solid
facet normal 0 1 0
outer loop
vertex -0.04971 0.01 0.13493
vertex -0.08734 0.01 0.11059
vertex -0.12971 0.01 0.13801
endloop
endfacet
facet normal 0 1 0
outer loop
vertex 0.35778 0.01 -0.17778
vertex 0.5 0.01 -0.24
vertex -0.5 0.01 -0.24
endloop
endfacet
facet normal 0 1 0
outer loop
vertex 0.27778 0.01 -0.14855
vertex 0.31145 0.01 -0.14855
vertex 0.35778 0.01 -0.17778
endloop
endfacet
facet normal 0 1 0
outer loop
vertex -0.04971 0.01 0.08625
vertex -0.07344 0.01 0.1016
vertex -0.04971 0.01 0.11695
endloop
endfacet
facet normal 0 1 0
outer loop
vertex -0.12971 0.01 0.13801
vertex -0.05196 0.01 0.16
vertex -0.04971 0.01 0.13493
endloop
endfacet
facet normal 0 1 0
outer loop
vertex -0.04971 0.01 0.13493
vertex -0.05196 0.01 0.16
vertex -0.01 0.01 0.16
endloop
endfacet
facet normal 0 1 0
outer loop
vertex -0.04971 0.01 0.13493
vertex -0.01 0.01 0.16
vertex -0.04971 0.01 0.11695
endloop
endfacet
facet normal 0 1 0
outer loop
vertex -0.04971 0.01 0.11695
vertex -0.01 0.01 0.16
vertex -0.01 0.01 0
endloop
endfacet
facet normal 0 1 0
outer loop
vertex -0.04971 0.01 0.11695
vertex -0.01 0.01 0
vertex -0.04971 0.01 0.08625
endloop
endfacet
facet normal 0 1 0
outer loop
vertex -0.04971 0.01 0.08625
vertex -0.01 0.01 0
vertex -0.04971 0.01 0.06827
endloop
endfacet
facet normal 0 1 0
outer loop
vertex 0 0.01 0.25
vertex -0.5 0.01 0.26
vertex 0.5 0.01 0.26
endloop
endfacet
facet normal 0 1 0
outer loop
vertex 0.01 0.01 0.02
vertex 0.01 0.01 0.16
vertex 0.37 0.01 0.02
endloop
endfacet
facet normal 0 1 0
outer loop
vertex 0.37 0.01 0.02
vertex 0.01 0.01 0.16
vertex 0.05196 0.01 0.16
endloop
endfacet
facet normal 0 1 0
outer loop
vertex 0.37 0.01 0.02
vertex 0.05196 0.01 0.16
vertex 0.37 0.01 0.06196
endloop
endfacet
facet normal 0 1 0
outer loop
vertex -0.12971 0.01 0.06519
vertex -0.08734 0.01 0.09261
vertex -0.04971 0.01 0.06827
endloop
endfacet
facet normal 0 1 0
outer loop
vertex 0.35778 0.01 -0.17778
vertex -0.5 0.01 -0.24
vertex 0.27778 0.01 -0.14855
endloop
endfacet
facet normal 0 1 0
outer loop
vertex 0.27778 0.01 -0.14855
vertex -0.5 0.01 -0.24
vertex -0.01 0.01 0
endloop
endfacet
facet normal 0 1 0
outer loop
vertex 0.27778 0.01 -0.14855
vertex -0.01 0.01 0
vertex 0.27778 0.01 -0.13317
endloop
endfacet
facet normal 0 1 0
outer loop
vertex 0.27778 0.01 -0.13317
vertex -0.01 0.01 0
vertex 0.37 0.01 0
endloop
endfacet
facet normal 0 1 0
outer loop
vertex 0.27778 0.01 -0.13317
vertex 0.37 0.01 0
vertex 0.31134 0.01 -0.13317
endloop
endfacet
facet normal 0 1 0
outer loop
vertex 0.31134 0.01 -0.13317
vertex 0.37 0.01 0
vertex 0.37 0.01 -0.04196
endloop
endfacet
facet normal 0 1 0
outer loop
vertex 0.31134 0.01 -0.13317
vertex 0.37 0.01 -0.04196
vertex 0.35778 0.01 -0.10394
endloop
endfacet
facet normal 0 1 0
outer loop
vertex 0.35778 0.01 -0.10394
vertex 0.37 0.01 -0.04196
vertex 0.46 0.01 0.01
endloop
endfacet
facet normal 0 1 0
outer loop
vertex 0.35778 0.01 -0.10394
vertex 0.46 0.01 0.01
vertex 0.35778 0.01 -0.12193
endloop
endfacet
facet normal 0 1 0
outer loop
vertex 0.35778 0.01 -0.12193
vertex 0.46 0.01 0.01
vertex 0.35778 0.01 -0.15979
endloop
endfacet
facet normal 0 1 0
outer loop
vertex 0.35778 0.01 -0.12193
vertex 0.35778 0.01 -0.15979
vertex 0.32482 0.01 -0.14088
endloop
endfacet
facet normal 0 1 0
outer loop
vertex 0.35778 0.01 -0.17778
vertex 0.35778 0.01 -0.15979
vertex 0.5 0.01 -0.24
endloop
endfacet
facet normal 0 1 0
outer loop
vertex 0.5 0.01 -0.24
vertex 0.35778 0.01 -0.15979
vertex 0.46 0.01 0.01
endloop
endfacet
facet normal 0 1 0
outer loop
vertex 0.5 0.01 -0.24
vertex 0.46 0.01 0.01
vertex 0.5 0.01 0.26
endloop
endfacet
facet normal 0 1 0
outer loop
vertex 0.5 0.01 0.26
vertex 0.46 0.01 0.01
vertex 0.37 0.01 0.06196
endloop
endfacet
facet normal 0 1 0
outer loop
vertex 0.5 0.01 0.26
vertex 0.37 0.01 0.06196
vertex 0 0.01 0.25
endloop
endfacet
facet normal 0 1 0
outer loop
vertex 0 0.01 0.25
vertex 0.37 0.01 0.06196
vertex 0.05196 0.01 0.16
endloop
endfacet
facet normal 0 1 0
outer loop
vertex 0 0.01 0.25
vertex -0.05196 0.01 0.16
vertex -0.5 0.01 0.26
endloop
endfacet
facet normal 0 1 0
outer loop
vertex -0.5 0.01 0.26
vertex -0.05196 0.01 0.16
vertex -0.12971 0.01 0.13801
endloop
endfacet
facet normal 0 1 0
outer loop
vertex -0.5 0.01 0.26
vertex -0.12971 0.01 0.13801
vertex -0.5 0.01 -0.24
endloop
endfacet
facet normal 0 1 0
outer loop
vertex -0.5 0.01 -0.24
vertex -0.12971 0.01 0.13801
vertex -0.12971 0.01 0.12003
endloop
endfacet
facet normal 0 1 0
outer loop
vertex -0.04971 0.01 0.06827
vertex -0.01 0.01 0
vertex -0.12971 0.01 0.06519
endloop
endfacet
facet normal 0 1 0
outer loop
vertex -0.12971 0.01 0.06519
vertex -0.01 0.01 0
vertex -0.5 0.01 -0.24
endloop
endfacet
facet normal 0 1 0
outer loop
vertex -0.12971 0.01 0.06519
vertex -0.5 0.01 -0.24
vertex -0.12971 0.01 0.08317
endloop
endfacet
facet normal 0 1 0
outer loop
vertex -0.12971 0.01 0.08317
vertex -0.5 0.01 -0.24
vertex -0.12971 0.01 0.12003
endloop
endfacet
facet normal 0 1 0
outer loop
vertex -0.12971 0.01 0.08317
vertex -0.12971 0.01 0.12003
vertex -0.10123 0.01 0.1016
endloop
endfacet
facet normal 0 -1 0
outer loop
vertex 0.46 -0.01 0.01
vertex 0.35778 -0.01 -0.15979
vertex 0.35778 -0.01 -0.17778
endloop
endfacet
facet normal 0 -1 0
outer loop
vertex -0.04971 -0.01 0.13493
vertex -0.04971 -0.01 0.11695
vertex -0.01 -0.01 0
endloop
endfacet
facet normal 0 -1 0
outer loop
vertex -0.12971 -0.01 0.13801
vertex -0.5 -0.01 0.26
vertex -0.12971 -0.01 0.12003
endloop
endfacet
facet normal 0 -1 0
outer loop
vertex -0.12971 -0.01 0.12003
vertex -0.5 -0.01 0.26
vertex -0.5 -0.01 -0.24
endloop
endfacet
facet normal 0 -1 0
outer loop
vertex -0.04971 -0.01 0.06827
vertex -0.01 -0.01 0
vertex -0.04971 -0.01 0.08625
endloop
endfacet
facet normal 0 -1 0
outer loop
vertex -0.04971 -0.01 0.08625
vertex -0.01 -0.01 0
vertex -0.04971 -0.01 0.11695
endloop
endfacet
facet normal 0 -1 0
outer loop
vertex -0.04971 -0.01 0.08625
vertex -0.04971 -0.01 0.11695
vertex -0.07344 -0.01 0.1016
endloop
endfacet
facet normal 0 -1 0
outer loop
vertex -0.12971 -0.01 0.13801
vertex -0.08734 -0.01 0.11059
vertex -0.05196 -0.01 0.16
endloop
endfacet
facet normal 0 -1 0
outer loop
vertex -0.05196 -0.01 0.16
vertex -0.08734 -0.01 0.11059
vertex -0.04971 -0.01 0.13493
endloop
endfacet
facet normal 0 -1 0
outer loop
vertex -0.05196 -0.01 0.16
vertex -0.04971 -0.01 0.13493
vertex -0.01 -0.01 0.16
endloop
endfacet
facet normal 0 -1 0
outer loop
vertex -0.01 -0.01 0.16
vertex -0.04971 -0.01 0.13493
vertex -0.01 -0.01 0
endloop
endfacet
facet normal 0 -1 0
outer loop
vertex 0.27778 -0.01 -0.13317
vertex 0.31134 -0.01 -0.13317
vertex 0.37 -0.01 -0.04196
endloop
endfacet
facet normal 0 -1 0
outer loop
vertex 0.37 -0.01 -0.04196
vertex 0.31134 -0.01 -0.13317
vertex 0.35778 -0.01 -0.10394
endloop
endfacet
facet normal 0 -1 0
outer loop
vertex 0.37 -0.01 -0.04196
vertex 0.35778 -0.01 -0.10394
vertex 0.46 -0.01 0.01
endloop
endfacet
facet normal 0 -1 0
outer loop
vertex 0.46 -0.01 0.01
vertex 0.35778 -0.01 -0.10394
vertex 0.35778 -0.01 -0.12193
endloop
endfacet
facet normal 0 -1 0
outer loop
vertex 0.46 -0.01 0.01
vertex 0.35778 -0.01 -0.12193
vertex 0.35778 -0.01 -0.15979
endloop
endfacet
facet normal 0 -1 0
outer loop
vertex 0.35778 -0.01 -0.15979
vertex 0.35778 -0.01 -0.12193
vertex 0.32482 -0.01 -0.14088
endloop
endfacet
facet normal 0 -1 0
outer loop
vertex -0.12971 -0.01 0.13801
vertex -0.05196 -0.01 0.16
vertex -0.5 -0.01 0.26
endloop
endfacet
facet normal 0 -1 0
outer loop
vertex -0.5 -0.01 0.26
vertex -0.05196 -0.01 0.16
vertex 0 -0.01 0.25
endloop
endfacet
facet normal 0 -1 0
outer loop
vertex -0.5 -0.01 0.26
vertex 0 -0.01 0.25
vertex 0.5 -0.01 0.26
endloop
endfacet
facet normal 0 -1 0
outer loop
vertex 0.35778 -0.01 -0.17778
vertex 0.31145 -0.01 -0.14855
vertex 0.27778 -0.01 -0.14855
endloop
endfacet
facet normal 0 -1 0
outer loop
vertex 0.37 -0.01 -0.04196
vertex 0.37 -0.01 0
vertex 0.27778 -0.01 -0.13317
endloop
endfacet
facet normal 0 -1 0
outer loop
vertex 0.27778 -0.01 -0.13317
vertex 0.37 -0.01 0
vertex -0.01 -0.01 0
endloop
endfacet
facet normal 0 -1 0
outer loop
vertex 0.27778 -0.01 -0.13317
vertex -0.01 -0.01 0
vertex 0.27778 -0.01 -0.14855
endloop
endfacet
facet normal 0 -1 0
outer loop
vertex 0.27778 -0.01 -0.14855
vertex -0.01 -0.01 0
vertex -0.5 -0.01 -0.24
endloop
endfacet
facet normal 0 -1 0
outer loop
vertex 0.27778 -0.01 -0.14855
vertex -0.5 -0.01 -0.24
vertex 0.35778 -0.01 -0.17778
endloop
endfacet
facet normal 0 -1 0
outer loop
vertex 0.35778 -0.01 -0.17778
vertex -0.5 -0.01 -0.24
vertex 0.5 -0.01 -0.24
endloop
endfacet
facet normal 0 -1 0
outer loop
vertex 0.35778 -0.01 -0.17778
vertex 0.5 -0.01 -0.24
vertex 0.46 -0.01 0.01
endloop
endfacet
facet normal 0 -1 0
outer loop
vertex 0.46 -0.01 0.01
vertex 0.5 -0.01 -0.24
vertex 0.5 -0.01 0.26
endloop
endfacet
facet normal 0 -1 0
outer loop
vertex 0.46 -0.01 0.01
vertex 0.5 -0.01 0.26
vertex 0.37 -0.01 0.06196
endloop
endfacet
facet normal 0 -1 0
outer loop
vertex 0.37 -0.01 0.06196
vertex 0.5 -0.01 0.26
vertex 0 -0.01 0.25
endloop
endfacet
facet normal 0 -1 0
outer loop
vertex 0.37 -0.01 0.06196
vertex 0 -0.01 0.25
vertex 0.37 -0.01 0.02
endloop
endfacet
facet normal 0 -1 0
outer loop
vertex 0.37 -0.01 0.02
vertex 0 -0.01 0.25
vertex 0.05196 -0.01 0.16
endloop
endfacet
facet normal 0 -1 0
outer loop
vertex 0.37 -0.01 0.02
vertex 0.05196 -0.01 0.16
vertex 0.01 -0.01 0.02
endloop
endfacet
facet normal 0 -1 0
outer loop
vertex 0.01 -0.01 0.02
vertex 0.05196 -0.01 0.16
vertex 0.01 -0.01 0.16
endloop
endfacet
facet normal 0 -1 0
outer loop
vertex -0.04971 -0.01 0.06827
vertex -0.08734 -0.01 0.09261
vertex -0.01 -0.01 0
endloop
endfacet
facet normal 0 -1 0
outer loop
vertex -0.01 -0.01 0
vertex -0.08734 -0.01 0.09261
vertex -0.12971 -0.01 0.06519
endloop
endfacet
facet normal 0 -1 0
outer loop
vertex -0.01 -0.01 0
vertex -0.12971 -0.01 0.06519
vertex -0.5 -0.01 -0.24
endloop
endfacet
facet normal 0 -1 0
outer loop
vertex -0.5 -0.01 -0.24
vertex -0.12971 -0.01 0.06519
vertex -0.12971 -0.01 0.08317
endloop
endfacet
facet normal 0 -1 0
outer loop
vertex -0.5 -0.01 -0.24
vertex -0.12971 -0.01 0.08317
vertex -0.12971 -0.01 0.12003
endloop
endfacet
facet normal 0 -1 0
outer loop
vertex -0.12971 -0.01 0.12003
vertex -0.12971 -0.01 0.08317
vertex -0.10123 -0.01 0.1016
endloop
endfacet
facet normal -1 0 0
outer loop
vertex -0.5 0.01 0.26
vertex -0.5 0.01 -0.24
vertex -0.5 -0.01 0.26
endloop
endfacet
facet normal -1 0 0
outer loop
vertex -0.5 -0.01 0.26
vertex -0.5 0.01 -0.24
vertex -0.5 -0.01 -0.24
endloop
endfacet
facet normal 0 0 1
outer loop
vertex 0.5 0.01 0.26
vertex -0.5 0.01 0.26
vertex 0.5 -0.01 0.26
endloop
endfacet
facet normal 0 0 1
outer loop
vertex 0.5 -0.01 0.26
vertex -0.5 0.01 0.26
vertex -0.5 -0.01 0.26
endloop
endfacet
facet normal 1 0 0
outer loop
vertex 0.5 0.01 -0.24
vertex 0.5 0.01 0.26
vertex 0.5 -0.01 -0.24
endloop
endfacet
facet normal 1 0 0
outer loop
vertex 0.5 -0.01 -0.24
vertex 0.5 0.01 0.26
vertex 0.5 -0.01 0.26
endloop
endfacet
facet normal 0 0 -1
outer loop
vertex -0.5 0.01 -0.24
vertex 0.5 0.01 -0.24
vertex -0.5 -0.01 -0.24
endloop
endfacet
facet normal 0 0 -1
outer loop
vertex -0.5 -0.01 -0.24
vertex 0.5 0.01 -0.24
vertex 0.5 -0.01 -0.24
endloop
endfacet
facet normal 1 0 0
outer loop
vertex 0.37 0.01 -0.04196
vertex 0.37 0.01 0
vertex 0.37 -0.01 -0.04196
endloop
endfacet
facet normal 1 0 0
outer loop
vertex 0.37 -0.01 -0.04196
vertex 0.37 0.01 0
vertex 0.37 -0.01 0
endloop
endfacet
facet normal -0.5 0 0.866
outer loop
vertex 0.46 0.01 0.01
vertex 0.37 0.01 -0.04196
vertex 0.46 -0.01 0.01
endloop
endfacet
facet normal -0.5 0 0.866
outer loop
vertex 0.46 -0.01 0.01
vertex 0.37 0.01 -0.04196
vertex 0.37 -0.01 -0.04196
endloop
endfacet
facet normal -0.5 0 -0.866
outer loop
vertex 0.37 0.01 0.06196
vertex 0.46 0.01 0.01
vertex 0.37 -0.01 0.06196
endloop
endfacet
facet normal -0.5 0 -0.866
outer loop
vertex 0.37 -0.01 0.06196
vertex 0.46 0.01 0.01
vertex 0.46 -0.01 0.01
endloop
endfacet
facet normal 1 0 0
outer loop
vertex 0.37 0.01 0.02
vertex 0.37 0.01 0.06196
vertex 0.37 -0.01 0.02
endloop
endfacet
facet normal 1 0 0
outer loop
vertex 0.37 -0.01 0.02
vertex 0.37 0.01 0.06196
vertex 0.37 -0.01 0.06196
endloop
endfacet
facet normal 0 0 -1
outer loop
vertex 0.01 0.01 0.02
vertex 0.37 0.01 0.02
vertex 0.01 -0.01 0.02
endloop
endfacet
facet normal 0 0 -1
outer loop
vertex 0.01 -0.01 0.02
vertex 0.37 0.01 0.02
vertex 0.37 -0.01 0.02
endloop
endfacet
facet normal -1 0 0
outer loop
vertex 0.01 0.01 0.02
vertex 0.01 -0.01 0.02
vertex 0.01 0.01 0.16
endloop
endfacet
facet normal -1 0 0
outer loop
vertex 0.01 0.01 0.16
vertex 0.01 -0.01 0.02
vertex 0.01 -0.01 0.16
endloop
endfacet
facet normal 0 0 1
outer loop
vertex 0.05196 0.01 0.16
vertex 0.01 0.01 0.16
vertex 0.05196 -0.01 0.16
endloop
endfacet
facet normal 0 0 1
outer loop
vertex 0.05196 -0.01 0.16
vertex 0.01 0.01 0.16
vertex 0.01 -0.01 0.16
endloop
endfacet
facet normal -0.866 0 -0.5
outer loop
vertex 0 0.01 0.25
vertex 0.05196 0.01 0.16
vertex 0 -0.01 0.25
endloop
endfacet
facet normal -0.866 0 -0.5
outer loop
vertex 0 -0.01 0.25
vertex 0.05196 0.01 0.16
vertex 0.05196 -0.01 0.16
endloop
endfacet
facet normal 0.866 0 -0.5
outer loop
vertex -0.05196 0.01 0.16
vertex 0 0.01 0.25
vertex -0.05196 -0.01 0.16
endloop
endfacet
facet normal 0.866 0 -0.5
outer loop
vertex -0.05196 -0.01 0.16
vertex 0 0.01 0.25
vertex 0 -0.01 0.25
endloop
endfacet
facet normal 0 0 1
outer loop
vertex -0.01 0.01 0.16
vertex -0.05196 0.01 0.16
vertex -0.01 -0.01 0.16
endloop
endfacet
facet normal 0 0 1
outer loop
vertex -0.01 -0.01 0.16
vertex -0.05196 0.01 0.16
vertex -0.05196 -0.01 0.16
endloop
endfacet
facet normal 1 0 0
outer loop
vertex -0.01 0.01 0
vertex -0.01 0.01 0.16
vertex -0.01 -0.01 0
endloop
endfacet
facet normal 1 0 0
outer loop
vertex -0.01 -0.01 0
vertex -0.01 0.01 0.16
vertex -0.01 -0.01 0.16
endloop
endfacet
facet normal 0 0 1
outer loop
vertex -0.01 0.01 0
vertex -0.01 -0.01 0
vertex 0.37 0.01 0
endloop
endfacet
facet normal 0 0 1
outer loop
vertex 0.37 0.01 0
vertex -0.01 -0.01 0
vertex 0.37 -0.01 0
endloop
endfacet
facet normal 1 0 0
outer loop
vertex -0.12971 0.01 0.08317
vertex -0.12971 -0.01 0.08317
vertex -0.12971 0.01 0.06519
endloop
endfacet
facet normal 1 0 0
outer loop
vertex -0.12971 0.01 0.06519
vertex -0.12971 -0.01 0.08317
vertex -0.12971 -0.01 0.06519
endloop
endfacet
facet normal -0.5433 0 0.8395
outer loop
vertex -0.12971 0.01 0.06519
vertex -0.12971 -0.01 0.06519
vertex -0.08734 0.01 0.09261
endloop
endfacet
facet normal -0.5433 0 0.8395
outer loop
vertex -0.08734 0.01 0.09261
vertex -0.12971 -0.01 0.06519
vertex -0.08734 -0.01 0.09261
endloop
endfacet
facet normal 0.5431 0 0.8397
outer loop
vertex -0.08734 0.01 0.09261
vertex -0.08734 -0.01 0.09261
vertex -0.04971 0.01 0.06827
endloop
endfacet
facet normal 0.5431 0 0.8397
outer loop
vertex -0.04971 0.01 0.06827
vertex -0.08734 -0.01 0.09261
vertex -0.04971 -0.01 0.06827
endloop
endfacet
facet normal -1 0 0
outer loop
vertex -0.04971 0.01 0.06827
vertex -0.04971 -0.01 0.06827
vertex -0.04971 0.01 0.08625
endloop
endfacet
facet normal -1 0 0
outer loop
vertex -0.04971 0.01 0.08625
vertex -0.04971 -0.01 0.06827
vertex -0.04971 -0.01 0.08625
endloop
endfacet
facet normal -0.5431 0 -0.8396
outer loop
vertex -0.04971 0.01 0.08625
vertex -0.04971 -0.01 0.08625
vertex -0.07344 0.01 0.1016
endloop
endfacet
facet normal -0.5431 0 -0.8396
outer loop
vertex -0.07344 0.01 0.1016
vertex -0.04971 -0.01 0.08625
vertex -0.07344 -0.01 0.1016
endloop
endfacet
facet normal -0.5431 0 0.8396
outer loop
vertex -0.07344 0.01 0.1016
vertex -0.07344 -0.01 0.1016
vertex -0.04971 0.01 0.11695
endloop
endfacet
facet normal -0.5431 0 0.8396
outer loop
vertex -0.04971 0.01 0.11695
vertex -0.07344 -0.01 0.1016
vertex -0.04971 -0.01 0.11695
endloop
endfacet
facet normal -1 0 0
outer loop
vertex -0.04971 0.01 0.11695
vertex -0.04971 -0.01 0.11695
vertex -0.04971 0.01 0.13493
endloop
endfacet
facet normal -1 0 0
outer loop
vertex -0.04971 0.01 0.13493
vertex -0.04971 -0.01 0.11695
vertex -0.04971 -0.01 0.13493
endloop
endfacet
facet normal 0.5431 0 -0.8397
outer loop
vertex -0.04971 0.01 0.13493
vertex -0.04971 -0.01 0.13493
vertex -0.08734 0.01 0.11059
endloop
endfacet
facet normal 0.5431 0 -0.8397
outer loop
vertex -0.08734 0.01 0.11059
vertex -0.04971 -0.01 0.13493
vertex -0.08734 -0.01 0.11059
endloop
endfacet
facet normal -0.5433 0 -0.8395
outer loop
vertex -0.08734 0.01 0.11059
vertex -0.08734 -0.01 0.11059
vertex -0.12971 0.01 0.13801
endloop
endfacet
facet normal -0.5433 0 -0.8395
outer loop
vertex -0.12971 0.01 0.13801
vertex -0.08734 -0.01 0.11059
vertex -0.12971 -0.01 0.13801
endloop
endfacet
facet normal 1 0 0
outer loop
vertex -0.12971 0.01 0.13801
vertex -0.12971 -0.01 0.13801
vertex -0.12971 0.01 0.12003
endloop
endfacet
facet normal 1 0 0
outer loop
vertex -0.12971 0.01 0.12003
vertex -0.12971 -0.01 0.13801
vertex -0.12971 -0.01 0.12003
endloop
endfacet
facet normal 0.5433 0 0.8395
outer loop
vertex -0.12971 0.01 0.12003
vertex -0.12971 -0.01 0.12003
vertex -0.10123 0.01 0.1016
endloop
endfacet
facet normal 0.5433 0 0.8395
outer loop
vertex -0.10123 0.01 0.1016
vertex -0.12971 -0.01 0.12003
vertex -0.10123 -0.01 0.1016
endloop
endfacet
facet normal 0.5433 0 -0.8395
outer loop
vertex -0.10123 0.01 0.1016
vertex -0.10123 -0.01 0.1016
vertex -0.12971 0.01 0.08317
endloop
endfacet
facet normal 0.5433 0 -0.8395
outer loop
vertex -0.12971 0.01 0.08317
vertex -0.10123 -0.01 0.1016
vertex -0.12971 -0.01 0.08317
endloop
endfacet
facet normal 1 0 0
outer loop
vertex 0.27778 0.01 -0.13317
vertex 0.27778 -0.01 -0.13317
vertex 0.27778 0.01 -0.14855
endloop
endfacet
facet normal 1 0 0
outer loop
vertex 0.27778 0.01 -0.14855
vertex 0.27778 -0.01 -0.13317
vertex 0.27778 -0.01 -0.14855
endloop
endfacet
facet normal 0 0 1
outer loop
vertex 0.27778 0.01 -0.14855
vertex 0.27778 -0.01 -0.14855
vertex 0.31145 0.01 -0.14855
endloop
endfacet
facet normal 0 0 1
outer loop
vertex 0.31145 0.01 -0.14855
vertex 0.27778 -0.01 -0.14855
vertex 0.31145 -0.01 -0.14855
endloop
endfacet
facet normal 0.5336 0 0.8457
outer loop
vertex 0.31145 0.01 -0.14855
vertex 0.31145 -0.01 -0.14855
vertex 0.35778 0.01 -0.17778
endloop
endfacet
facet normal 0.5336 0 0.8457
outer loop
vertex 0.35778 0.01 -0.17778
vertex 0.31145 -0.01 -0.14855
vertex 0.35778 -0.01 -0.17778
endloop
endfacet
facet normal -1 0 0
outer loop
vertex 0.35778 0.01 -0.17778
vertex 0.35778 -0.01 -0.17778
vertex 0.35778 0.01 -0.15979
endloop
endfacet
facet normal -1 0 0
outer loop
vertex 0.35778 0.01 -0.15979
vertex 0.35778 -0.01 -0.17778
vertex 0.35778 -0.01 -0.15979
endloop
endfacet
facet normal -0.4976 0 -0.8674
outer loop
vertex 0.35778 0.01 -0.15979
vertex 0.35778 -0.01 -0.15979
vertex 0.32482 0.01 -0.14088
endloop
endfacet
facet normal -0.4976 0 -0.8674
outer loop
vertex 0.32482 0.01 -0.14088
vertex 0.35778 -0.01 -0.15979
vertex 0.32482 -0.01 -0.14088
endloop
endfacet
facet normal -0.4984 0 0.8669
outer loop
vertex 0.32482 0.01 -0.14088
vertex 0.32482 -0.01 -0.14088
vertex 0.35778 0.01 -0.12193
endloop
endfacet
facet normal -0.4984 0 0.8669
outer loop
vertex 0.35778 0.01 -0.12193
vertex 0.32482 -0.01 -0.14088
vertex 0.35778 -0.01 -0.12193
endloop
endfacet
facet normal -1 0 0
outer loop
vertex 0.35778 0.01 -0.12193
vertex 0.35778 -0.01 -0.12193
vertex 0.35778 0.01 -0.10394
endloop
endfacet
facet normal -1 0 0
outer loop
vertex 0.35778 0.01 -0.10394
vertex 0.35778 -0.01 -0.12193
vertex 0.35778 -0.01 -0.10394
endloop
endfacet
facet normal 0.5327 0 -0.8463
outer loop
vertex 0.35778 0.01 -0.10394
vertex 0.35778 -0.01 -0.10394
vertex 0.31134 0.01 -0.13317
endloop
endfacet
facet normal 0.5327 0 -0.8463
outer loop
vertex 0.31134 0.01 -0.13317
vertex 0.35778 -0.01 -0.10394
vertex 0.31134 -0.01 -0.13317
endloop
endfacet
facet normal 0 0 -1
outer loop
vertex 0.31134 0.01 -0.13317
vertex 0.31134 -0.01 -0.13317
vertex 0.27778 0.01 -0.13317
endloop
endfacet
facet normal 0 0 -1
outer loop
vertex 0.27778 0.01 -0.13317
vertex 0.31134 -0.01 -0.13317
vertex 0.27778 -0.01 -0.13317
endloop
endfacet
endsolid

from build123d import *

# Parameters (mm, degrees)
SKETCH_2_W          = 25
SKETCH_2_H          = 50
EXTRUDE_2_DEPTH     = 1
CUT_EXTRUDE_3_DEPTH = 8
EXTRUDE_4_DEPTH     = 16
EXTRUDE_4_2_DEPTH   = 16
MOVE_BODY_1_ANGLE   = 120
SCALE_1_SCALE       = 0.02


with BuildPart() as part:
    # Эскиз2 → Бобышка-Вытянуть2 (new body)
    with BuildSketch(Plane.XY):
        Rectangle(SKETCH_2_W, SKETCH_2_H)
    extrude(amount=EXTRUDE_2_DEPTH)

    # Эскиз6 → Вырез-Вытянуть3 (cut)
    with BuildSketch(Plane.XY.offset(1)):
        Polygon((-2.598076211, 18.5), (2.598076211, 18.5), (0, 23), align=None)
        Polygon((7.5, -0.5), (7.5, 0.5), (0.5, 0.5), (0.5, 18.5), (-0.5, 18.5), (-0.5, -0.5), align=None)
        Polygon((7.5, 2.598076211), (7.5, -2.598076211), (12, 0), align=None)
    extrude(amount=-CUT_EXTRUDE_3_DEPTH, mode=Mode.SUBTRACT)


with BuildPart() as body_2:
    # Эскиз7 → Бобышка-Вытянуть4 (new body)
    with BuildSketch(Plane.XY.offset(1)):
        Polygon((-7.927565688, 13.889018638), (-7.927565688, 15.572512228), (-9.389104149, 17.889018638), (-8.489264406, 17.889018638), (-7.543751585, 16.240781459), (-6.5966362, 17.889018638), (-5.696796457, 17.889018638), (-7.158334918, 15.566903254), (-7.158334918, 13.889018638), align=None)
    extrude(amount=-EXTRUDE_4_DEPTH)


with BuildPart() as body_3:
    # Эскиз7 → Extrude 4 2 (new body)
    with BuildSketch(Plane.XY.offset(1)):
        Polygon((2.759563021, -6.485396961), (4.130556611, -4.366807217), (2.913409175, -2.485396961), (3.812447637, -2.485396961), (4.580075842, -3.672095679), (5.347704047, -2.485396961), (6.246742508, -2.485396961), (5.029595073, -4.366807217), (6.400588662, -6.485396961), (5.501550201, -6.485396961), (4.580075842, -5.061518755), (3.658601483, -6.485396961), align=None)
    extrude(amount=-EXTRUDE_4_2_DEPTH)


with BuildPart() as part_1:
    add(part.part)

    # Combine 1: cut body 2, body 3
    add(body_2.part, mode=Mode.SUBTRACT)
    add(body_3.part, mode=Mode.SUBTRACT)


with BuildPart() as part_2:
    # Move Body 1: moved
    add(part_1.part.moved(Location((0, 0, 0))).rotate(Axis((-0.166666667, -0.166666667, 0.333333333), (-0.577350269189609, -0.5773502691897541, -0.5773502691895143)), MOVE_BODY_1_ANGLE))


with BuildPart() as part_3:
    # Масштаб1: scaled about (0, 0, 0)
    add(part_2.part.scale(SCALE_1_SCALE))


solid = part_3.part
